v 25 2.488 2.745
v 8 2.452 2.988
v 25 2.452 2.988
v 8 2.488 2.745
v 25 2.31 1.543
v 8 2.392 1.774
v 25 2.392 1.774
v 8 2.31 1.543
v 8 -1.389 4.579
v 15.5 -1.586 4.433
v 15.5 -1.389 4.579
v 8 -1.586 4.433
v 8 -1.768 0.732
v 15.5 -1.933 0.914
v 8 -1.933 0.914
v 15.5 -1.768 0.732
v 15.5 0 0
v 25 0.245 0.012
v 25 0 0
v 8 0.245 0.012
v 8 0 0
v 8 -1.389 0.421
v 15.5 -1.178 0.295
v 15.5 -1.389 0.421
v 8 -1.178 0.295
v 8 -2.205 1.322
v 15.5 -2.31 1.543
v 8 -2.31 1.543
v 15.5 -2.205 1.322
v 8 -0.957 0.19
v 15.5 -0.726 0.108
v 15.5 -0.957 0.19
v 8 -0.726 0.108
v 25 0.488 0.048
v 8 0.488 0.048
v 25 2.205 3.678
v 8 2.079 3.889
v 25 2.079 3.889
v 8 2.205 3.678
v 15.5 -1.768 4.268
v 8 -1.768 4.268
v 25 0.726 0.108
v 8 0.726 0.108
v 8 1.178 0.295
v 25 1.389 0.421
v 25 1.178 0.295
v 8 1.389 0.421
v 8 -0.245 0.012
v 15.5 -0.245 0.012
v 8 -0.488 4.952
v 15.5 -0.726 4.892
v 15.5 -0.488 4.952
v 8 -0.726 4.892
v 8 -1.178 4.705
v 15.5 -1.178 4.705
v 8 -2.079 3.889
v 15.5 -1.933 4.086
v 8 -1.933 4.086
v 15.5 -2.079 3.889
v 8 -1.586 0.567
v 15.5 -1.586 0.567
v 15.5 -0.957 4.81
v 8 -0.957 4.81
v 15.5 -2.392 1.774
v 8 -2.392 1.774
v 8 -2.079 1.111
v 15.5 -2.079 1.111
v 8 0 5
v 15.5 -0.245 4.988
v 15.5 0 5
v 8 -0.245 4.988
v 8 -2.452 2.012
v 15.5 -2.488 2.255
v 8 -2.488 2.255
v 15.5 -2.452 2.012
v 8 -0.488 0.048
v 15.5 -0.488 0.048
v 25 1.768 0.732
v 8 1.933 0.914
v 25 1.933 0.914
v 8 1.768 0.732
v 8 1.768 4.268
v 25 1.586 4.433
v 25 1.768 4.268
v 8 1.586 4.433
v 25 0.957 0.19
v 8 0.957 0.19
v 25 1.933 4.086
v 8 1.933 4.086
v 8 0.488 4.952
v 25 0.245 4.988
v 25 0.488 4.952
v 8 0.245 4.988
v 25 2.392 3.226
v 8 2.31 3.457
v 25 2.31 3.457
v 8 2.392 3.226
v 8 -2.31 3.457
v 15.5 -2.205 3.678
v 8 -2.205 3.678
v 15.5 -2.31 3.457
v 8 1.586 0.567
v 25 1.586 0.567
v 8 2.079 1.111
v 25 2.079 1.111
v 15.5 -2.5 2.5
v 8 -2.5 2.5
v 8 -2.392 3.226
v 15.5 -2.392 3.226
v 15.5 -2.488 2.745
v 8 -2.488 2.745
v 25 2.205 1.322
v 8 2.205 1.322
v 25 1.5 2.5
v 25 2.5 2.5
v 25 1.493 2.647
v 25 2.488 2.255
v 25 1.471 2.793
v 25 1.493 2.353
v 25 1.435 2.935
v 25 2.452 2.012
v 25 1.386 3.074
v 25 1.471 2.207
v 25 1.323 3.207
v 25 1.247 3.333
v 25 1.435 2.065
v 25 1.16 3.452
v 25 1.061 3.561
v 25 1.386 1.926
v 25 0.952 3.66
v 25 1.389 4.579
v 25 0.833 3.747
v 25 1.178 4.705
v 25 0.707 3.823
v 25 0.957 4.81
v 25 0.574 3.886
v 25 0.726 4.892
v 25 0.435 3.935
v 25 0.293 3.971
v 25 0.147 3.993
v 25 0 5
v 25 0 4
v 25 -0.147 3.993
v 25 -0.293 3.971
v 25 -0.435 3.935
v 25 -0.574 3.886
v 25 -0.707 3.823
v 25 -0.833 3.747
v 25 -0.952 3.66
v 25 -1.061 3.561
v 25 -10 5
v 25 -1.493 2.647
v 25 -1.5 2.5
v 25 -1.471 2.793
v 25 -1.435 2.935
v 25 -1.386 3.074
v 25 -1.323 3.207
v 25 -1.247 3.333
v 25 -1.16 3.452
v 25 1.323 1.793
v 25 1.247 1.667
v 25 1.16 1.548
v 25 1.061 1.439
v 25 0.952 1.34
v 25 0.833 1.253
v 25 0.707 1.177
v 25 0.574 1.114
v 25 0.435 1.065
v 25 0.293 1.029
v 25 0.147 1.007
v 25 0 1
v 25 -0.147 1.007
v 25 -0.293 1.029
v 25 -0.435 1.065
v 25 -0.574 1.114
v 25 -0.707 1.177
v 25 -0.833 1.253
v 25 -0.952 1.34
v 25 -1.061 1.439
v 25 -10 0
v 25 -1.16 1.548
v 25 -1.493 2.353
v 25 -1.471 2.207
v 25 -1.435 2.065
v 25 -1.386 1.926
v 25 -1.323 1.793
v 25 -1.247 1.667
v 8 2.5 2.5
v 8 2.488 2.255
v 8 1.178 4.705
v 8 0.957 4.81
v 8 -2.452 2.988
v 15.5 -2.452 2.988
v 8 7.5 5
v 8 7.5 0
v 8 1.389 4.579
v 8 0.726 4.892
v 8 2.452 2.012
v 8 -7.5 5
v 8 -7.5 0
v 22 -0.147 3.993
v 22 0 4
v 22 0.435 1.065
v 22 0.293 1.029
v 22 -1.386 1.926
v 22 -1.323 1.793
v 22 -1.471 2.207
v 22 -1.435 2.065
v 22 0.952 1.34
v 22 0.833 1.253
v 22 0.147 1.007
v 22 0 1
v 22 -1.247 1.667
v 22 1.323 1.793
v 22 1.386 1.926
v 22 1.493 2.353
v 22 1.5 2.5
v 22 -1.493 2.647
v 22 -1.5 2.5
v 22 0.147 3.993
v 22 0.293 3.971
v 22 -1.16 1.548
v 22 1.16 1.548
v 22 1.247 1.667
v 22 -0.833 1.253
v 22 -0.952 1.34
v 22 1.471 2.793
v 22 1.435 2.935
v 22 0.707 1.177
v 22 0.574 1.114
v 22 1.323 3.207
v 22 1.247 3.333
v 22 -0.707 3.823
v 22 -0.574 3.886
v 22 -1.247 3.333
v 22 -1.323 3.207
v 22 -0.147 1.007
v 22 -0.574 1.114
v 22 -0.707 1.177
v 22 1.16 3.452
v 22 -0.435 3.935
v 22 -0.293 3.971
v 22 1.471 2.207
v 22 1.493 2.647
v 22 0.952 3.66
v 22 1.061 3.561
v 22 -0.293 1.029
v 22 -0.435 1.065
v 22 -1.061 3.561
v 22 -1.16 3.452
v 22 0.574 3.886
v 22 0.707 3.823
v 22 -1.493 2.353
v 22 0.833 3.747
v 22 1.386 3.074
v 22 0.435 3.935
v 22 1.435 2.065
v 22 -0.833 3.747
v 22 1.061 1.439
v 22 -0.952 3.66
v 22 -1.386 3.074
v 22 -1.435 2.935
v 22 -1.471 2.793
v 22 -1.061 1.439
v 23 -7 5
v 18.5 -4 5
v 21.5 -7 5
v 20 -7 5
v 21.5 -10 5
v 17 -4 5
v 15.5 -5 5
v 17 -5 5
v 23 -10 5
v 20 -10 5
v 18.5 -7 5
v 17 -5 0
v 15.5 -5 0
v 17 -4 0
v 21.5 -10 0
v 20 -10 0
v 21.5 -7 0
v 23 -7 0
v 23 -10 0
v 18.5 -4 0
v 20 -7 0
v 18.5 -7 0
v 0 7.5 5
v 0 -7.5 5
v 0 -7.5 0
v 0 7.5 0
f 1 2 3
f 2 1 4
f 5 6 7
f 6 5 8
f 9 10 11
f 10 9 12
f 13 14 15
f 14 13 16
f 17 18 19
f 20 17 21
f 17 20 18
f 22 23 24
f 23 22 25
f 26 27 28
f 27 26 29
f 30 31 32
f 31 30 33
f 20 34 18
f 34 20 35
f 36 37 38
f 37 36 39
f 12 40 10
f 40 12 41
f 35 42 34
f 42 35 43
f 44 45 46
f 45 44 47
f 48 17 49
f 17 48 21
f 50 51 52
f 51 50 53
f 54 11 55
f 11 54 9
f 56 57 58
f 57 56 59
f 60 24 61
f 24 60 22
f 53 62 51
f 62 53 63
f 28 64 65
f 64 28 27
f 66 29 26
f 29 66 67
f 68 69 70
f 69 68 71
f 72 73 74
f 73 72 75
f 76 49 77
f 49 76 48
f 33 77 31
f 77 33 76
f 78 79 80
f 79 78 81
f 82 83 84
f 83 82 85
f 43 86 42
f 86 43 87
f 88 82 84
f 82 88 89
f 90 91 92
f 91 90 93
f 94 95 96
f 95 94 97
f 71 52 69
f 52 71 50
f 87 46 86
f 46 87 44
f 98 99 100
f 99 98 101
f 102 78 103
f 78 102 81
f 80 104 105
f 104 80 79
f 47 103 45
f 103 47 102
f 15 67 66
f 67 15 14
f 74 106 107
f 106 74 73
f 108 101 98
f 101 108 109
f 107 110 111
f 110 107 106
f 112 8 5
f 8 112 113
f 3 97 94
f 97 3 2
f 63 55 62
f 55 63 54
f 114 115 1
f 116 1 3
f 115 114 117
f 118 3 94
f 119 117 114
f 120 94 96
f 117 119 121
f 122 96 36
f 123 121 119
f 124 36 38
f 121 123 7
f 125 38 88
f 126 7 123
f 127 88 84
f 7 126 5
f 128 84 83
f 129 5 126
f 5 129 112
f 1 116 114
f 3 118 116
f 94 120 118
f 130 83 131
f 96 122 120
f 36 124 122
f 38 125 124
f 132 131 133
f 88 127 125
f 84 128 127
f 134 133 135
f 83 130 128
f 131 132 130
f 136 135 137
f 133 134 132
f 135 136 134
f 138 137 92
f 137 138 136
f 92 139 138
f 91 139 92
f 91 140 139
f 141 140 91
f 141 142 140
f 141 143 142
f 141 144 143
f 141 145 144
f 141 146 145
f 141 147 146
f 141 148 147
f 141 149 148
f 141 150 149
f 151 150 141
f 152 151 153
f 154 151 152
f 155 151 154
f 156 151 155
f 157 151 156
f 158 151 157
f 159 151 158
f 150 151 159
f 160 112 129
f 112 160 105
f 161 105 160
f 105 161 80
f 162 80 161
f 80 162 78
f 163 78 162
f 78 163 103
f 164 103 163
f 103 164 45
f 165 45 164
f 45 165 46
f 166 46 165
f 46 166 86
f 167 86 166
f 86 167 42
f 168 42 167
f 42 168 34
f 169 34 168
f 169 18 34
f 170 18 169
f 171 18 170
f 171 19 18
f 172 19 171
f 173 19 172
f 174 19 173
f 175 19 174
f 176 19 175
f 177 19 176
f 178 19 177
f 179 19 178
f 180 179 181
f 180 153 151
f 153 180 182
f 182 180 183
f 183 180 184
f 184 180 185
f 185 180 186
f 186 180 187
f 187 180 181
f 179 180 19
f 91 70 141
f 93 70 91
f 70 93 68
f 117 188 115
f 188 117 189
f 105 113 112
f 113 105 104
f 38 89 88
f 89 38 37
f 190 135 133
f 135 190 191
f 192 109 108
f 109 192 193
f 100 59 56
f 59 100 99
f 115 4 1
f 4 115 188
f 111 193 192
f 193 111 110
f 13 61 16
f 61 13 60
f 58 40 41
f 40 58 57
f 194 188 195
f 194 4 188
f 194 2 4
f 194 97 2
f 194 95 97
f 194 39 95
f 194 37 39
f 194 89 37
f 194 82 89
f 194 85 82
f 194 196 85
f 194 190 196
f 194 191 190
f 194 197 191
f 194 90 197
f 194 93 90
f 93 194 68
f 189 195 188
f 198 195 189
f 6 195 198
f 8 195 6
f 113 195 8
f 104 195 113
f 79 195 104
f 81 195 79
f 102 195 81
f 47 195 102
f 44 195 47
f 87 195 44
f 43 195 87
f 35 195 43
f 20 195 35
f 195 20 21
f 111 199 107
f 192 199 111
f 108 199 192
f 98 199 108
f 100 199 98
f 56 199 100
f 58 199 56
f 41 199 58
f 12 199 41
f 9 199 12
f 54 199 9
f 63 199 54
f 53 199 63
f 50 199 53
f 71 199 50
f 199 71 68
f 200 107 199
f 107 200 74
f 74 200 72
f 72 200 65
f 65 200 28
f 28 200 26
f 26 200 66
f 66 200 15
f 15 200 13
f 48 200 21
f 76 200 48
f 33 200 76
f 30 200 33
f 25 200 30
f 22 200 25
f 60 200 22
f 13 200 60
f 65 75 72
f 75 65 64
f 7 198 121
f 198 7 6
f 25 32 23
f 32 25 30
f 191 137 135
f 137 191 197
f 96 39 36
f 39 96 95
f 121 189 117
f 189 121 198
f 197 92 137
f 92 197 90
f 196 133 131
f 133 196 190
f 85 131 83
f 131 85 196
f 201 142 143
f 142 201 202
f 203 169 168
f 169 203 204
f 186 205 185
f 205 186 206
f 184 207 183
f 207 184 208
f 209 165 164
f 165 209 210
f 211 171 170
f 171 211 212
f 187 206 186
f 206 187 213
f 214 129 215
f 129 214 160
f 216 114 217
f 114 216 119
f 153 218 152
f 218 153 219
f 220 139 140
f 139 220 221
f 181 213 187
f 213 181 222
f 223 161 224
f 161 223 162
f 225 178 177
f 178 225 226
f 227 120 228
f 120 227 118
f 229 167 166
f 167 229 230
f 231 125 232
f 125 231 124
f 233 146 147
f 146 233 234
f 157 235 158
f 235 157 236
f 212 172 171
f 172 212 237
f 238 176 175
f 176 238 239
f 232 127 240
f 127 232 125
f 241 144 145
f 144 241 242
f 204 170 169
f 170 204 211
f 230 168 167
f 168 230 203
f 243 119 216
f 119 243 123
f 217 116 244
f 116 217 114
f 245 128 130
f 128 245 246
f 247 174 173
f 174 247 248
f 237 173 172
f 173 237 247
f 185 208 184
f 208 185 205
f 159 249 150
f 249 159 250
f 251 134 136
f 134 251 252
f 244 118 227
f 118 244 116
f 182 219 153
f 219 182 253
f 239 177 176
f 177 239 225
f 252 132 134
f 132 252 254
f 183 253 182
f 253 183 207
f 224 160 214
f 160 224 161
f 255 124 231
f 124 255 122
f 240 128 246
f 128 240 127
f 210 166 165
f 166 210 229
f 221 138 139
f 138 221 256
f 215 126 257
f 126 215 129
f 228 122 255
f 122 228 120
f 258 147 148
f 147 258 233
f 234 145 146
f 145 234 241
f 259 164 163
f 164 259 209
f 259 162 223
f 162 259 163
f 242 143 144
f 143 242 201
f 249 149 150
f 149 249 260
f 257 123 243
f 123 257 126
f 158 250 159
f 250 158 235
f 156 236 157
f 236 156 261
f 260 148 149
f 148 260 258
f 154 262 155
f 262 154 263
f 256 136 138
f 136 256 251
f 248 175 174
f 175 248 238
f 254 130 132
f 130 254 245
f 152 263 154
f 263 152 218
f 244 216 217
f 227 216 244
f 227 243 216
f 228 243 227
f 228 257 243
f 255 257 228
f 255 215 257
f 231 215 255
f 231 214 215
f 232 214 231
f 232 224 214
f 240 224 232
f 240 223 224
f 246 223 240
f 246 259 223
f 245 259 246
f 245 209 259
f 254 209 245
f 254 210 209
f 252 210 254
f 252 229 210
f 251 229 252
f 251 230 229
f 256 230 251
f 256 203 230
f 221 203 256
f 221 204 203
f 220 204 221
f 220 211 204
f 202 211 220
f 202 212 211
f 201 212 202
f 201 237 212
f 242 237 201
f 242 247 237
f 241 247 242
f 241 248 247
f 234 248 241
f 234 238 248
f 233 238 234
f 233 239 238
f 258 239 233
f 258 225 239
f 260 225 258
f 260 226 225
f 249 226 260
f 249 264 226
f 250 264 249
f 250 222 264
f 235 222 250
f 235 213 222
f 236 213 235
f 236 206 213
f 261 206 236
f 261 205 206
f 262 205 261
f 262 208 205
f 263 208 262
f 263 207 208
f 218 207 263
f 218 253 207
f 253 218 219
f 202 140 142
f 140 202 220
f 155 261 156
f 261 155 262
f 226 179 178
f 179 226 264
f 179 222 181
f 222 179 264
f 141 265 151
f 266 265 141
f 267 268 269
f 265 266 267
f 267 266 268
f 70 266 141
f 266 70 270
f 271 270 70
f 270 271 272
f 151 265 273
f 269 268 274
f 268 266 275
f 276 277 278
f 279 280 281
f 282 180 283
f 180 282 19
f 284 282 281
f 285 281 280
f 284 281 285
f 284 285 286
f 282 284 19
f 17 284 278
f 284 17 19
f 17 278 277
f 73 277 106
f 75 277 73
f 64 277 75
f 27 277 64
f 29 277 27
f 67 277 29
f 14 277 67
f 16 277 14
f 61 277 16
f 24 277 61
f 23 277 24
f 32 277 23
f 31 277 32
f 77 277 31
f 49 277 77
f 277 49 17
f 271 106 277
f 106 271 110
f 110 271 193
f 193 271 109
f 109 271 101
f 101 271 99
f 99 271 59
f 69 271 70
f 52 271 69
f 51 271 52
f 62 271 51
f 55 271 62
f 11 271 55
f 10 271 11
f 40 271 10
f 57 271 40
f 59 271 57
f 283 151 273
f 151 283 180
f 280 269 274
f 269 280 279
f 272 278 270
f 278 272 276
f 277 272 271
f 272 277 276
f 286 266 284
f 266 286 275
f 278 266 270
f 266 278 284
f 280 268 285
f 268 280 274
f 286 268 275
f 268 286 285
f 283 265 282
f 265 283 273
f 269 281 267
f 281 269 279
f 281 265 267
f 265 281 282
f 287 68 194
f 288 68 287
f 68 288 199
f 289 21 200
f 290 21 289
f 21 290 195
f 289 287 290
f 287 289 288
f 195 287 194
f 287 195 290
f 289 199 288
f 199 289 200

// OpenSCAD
$fn = 64;

thick   =   5;

// L'anneau
anneau_width    =   8;
anneau_height   =   15;
anneau_thick    =   thick;

translate( [ 0, -anneau_height/2.0, 0] ) {
    cube(
        [
            anneau_width    ,
            anneau_height   ,
            anneau_thick
        ]
    );
}

// La tige
tige_width  =   17;
tige_thick  =   thick;

difference() {
    translate( [8, 0, tige_thick/2.0] ) {
        rotate( [0, 90, 0] ) {
            cylinder( tige_width, tige_thick/2.0, tige_thick/2.0 );
        }
    }

    translate( [8 + tige_width - 3, 0, tige_thick/2.0] ) {
        rotate( [0, 90, 0] ) {
            cylinder( 3, 3/2., 3/2. );
        }
    }
}

// Le Panneton
gorge_nb        =   5;
gorge_width     =   1.5;
gorge_thick     =   thick;

panneton_width  =   gorge_nb * gorge_width + 2;
panneton_height =   10;
panneton_thick  =   thick;

/// NEW
translate(
        [anneau_width + tige_width - panneton_width ,
        -panneton_height            ,
        0]
)
{
    panneton( gorge_width, panneton_thick );
}

module panneton( g_width, p_thick ) {
    difference() {
        cube(
            [
                panneton_width  ,
                panneton_height ,
                p_thick
            ]
        );

    translate( [ panneton_width-3, panneton_height, tige_thick/2.0] ) {
        rotate( [0, 90, 0] ) {
            cylinder( 3, 3/2., 3/2. );
        }
    }
        
        // Gorges en négatif
        // Gorge N°1
        translate( [0 * g_width, 0, 0]) {
            cube( [g_width, 5, p_thick] );
        }
        // Gorge N°2
        translate( [1 * g_width, 0, 0]) {
            cube( [g_width, 6, p_thick] );
        }
        
        // Gorge N°3
        translate( [2 * g_width, 0, 0]) {
            cube( [g_width, 3, p_thick] );
        }

        // Gorge N°4
        translate( [3 * g_width, 0, 0]) {
            cube( [g_width, 0, p_thick] );
        }

        // Gorge N°5
        translate( [4 * g_width, 0, 0]) {
            cube( [g_width, 3, p_thick] );
        }
    }
}
